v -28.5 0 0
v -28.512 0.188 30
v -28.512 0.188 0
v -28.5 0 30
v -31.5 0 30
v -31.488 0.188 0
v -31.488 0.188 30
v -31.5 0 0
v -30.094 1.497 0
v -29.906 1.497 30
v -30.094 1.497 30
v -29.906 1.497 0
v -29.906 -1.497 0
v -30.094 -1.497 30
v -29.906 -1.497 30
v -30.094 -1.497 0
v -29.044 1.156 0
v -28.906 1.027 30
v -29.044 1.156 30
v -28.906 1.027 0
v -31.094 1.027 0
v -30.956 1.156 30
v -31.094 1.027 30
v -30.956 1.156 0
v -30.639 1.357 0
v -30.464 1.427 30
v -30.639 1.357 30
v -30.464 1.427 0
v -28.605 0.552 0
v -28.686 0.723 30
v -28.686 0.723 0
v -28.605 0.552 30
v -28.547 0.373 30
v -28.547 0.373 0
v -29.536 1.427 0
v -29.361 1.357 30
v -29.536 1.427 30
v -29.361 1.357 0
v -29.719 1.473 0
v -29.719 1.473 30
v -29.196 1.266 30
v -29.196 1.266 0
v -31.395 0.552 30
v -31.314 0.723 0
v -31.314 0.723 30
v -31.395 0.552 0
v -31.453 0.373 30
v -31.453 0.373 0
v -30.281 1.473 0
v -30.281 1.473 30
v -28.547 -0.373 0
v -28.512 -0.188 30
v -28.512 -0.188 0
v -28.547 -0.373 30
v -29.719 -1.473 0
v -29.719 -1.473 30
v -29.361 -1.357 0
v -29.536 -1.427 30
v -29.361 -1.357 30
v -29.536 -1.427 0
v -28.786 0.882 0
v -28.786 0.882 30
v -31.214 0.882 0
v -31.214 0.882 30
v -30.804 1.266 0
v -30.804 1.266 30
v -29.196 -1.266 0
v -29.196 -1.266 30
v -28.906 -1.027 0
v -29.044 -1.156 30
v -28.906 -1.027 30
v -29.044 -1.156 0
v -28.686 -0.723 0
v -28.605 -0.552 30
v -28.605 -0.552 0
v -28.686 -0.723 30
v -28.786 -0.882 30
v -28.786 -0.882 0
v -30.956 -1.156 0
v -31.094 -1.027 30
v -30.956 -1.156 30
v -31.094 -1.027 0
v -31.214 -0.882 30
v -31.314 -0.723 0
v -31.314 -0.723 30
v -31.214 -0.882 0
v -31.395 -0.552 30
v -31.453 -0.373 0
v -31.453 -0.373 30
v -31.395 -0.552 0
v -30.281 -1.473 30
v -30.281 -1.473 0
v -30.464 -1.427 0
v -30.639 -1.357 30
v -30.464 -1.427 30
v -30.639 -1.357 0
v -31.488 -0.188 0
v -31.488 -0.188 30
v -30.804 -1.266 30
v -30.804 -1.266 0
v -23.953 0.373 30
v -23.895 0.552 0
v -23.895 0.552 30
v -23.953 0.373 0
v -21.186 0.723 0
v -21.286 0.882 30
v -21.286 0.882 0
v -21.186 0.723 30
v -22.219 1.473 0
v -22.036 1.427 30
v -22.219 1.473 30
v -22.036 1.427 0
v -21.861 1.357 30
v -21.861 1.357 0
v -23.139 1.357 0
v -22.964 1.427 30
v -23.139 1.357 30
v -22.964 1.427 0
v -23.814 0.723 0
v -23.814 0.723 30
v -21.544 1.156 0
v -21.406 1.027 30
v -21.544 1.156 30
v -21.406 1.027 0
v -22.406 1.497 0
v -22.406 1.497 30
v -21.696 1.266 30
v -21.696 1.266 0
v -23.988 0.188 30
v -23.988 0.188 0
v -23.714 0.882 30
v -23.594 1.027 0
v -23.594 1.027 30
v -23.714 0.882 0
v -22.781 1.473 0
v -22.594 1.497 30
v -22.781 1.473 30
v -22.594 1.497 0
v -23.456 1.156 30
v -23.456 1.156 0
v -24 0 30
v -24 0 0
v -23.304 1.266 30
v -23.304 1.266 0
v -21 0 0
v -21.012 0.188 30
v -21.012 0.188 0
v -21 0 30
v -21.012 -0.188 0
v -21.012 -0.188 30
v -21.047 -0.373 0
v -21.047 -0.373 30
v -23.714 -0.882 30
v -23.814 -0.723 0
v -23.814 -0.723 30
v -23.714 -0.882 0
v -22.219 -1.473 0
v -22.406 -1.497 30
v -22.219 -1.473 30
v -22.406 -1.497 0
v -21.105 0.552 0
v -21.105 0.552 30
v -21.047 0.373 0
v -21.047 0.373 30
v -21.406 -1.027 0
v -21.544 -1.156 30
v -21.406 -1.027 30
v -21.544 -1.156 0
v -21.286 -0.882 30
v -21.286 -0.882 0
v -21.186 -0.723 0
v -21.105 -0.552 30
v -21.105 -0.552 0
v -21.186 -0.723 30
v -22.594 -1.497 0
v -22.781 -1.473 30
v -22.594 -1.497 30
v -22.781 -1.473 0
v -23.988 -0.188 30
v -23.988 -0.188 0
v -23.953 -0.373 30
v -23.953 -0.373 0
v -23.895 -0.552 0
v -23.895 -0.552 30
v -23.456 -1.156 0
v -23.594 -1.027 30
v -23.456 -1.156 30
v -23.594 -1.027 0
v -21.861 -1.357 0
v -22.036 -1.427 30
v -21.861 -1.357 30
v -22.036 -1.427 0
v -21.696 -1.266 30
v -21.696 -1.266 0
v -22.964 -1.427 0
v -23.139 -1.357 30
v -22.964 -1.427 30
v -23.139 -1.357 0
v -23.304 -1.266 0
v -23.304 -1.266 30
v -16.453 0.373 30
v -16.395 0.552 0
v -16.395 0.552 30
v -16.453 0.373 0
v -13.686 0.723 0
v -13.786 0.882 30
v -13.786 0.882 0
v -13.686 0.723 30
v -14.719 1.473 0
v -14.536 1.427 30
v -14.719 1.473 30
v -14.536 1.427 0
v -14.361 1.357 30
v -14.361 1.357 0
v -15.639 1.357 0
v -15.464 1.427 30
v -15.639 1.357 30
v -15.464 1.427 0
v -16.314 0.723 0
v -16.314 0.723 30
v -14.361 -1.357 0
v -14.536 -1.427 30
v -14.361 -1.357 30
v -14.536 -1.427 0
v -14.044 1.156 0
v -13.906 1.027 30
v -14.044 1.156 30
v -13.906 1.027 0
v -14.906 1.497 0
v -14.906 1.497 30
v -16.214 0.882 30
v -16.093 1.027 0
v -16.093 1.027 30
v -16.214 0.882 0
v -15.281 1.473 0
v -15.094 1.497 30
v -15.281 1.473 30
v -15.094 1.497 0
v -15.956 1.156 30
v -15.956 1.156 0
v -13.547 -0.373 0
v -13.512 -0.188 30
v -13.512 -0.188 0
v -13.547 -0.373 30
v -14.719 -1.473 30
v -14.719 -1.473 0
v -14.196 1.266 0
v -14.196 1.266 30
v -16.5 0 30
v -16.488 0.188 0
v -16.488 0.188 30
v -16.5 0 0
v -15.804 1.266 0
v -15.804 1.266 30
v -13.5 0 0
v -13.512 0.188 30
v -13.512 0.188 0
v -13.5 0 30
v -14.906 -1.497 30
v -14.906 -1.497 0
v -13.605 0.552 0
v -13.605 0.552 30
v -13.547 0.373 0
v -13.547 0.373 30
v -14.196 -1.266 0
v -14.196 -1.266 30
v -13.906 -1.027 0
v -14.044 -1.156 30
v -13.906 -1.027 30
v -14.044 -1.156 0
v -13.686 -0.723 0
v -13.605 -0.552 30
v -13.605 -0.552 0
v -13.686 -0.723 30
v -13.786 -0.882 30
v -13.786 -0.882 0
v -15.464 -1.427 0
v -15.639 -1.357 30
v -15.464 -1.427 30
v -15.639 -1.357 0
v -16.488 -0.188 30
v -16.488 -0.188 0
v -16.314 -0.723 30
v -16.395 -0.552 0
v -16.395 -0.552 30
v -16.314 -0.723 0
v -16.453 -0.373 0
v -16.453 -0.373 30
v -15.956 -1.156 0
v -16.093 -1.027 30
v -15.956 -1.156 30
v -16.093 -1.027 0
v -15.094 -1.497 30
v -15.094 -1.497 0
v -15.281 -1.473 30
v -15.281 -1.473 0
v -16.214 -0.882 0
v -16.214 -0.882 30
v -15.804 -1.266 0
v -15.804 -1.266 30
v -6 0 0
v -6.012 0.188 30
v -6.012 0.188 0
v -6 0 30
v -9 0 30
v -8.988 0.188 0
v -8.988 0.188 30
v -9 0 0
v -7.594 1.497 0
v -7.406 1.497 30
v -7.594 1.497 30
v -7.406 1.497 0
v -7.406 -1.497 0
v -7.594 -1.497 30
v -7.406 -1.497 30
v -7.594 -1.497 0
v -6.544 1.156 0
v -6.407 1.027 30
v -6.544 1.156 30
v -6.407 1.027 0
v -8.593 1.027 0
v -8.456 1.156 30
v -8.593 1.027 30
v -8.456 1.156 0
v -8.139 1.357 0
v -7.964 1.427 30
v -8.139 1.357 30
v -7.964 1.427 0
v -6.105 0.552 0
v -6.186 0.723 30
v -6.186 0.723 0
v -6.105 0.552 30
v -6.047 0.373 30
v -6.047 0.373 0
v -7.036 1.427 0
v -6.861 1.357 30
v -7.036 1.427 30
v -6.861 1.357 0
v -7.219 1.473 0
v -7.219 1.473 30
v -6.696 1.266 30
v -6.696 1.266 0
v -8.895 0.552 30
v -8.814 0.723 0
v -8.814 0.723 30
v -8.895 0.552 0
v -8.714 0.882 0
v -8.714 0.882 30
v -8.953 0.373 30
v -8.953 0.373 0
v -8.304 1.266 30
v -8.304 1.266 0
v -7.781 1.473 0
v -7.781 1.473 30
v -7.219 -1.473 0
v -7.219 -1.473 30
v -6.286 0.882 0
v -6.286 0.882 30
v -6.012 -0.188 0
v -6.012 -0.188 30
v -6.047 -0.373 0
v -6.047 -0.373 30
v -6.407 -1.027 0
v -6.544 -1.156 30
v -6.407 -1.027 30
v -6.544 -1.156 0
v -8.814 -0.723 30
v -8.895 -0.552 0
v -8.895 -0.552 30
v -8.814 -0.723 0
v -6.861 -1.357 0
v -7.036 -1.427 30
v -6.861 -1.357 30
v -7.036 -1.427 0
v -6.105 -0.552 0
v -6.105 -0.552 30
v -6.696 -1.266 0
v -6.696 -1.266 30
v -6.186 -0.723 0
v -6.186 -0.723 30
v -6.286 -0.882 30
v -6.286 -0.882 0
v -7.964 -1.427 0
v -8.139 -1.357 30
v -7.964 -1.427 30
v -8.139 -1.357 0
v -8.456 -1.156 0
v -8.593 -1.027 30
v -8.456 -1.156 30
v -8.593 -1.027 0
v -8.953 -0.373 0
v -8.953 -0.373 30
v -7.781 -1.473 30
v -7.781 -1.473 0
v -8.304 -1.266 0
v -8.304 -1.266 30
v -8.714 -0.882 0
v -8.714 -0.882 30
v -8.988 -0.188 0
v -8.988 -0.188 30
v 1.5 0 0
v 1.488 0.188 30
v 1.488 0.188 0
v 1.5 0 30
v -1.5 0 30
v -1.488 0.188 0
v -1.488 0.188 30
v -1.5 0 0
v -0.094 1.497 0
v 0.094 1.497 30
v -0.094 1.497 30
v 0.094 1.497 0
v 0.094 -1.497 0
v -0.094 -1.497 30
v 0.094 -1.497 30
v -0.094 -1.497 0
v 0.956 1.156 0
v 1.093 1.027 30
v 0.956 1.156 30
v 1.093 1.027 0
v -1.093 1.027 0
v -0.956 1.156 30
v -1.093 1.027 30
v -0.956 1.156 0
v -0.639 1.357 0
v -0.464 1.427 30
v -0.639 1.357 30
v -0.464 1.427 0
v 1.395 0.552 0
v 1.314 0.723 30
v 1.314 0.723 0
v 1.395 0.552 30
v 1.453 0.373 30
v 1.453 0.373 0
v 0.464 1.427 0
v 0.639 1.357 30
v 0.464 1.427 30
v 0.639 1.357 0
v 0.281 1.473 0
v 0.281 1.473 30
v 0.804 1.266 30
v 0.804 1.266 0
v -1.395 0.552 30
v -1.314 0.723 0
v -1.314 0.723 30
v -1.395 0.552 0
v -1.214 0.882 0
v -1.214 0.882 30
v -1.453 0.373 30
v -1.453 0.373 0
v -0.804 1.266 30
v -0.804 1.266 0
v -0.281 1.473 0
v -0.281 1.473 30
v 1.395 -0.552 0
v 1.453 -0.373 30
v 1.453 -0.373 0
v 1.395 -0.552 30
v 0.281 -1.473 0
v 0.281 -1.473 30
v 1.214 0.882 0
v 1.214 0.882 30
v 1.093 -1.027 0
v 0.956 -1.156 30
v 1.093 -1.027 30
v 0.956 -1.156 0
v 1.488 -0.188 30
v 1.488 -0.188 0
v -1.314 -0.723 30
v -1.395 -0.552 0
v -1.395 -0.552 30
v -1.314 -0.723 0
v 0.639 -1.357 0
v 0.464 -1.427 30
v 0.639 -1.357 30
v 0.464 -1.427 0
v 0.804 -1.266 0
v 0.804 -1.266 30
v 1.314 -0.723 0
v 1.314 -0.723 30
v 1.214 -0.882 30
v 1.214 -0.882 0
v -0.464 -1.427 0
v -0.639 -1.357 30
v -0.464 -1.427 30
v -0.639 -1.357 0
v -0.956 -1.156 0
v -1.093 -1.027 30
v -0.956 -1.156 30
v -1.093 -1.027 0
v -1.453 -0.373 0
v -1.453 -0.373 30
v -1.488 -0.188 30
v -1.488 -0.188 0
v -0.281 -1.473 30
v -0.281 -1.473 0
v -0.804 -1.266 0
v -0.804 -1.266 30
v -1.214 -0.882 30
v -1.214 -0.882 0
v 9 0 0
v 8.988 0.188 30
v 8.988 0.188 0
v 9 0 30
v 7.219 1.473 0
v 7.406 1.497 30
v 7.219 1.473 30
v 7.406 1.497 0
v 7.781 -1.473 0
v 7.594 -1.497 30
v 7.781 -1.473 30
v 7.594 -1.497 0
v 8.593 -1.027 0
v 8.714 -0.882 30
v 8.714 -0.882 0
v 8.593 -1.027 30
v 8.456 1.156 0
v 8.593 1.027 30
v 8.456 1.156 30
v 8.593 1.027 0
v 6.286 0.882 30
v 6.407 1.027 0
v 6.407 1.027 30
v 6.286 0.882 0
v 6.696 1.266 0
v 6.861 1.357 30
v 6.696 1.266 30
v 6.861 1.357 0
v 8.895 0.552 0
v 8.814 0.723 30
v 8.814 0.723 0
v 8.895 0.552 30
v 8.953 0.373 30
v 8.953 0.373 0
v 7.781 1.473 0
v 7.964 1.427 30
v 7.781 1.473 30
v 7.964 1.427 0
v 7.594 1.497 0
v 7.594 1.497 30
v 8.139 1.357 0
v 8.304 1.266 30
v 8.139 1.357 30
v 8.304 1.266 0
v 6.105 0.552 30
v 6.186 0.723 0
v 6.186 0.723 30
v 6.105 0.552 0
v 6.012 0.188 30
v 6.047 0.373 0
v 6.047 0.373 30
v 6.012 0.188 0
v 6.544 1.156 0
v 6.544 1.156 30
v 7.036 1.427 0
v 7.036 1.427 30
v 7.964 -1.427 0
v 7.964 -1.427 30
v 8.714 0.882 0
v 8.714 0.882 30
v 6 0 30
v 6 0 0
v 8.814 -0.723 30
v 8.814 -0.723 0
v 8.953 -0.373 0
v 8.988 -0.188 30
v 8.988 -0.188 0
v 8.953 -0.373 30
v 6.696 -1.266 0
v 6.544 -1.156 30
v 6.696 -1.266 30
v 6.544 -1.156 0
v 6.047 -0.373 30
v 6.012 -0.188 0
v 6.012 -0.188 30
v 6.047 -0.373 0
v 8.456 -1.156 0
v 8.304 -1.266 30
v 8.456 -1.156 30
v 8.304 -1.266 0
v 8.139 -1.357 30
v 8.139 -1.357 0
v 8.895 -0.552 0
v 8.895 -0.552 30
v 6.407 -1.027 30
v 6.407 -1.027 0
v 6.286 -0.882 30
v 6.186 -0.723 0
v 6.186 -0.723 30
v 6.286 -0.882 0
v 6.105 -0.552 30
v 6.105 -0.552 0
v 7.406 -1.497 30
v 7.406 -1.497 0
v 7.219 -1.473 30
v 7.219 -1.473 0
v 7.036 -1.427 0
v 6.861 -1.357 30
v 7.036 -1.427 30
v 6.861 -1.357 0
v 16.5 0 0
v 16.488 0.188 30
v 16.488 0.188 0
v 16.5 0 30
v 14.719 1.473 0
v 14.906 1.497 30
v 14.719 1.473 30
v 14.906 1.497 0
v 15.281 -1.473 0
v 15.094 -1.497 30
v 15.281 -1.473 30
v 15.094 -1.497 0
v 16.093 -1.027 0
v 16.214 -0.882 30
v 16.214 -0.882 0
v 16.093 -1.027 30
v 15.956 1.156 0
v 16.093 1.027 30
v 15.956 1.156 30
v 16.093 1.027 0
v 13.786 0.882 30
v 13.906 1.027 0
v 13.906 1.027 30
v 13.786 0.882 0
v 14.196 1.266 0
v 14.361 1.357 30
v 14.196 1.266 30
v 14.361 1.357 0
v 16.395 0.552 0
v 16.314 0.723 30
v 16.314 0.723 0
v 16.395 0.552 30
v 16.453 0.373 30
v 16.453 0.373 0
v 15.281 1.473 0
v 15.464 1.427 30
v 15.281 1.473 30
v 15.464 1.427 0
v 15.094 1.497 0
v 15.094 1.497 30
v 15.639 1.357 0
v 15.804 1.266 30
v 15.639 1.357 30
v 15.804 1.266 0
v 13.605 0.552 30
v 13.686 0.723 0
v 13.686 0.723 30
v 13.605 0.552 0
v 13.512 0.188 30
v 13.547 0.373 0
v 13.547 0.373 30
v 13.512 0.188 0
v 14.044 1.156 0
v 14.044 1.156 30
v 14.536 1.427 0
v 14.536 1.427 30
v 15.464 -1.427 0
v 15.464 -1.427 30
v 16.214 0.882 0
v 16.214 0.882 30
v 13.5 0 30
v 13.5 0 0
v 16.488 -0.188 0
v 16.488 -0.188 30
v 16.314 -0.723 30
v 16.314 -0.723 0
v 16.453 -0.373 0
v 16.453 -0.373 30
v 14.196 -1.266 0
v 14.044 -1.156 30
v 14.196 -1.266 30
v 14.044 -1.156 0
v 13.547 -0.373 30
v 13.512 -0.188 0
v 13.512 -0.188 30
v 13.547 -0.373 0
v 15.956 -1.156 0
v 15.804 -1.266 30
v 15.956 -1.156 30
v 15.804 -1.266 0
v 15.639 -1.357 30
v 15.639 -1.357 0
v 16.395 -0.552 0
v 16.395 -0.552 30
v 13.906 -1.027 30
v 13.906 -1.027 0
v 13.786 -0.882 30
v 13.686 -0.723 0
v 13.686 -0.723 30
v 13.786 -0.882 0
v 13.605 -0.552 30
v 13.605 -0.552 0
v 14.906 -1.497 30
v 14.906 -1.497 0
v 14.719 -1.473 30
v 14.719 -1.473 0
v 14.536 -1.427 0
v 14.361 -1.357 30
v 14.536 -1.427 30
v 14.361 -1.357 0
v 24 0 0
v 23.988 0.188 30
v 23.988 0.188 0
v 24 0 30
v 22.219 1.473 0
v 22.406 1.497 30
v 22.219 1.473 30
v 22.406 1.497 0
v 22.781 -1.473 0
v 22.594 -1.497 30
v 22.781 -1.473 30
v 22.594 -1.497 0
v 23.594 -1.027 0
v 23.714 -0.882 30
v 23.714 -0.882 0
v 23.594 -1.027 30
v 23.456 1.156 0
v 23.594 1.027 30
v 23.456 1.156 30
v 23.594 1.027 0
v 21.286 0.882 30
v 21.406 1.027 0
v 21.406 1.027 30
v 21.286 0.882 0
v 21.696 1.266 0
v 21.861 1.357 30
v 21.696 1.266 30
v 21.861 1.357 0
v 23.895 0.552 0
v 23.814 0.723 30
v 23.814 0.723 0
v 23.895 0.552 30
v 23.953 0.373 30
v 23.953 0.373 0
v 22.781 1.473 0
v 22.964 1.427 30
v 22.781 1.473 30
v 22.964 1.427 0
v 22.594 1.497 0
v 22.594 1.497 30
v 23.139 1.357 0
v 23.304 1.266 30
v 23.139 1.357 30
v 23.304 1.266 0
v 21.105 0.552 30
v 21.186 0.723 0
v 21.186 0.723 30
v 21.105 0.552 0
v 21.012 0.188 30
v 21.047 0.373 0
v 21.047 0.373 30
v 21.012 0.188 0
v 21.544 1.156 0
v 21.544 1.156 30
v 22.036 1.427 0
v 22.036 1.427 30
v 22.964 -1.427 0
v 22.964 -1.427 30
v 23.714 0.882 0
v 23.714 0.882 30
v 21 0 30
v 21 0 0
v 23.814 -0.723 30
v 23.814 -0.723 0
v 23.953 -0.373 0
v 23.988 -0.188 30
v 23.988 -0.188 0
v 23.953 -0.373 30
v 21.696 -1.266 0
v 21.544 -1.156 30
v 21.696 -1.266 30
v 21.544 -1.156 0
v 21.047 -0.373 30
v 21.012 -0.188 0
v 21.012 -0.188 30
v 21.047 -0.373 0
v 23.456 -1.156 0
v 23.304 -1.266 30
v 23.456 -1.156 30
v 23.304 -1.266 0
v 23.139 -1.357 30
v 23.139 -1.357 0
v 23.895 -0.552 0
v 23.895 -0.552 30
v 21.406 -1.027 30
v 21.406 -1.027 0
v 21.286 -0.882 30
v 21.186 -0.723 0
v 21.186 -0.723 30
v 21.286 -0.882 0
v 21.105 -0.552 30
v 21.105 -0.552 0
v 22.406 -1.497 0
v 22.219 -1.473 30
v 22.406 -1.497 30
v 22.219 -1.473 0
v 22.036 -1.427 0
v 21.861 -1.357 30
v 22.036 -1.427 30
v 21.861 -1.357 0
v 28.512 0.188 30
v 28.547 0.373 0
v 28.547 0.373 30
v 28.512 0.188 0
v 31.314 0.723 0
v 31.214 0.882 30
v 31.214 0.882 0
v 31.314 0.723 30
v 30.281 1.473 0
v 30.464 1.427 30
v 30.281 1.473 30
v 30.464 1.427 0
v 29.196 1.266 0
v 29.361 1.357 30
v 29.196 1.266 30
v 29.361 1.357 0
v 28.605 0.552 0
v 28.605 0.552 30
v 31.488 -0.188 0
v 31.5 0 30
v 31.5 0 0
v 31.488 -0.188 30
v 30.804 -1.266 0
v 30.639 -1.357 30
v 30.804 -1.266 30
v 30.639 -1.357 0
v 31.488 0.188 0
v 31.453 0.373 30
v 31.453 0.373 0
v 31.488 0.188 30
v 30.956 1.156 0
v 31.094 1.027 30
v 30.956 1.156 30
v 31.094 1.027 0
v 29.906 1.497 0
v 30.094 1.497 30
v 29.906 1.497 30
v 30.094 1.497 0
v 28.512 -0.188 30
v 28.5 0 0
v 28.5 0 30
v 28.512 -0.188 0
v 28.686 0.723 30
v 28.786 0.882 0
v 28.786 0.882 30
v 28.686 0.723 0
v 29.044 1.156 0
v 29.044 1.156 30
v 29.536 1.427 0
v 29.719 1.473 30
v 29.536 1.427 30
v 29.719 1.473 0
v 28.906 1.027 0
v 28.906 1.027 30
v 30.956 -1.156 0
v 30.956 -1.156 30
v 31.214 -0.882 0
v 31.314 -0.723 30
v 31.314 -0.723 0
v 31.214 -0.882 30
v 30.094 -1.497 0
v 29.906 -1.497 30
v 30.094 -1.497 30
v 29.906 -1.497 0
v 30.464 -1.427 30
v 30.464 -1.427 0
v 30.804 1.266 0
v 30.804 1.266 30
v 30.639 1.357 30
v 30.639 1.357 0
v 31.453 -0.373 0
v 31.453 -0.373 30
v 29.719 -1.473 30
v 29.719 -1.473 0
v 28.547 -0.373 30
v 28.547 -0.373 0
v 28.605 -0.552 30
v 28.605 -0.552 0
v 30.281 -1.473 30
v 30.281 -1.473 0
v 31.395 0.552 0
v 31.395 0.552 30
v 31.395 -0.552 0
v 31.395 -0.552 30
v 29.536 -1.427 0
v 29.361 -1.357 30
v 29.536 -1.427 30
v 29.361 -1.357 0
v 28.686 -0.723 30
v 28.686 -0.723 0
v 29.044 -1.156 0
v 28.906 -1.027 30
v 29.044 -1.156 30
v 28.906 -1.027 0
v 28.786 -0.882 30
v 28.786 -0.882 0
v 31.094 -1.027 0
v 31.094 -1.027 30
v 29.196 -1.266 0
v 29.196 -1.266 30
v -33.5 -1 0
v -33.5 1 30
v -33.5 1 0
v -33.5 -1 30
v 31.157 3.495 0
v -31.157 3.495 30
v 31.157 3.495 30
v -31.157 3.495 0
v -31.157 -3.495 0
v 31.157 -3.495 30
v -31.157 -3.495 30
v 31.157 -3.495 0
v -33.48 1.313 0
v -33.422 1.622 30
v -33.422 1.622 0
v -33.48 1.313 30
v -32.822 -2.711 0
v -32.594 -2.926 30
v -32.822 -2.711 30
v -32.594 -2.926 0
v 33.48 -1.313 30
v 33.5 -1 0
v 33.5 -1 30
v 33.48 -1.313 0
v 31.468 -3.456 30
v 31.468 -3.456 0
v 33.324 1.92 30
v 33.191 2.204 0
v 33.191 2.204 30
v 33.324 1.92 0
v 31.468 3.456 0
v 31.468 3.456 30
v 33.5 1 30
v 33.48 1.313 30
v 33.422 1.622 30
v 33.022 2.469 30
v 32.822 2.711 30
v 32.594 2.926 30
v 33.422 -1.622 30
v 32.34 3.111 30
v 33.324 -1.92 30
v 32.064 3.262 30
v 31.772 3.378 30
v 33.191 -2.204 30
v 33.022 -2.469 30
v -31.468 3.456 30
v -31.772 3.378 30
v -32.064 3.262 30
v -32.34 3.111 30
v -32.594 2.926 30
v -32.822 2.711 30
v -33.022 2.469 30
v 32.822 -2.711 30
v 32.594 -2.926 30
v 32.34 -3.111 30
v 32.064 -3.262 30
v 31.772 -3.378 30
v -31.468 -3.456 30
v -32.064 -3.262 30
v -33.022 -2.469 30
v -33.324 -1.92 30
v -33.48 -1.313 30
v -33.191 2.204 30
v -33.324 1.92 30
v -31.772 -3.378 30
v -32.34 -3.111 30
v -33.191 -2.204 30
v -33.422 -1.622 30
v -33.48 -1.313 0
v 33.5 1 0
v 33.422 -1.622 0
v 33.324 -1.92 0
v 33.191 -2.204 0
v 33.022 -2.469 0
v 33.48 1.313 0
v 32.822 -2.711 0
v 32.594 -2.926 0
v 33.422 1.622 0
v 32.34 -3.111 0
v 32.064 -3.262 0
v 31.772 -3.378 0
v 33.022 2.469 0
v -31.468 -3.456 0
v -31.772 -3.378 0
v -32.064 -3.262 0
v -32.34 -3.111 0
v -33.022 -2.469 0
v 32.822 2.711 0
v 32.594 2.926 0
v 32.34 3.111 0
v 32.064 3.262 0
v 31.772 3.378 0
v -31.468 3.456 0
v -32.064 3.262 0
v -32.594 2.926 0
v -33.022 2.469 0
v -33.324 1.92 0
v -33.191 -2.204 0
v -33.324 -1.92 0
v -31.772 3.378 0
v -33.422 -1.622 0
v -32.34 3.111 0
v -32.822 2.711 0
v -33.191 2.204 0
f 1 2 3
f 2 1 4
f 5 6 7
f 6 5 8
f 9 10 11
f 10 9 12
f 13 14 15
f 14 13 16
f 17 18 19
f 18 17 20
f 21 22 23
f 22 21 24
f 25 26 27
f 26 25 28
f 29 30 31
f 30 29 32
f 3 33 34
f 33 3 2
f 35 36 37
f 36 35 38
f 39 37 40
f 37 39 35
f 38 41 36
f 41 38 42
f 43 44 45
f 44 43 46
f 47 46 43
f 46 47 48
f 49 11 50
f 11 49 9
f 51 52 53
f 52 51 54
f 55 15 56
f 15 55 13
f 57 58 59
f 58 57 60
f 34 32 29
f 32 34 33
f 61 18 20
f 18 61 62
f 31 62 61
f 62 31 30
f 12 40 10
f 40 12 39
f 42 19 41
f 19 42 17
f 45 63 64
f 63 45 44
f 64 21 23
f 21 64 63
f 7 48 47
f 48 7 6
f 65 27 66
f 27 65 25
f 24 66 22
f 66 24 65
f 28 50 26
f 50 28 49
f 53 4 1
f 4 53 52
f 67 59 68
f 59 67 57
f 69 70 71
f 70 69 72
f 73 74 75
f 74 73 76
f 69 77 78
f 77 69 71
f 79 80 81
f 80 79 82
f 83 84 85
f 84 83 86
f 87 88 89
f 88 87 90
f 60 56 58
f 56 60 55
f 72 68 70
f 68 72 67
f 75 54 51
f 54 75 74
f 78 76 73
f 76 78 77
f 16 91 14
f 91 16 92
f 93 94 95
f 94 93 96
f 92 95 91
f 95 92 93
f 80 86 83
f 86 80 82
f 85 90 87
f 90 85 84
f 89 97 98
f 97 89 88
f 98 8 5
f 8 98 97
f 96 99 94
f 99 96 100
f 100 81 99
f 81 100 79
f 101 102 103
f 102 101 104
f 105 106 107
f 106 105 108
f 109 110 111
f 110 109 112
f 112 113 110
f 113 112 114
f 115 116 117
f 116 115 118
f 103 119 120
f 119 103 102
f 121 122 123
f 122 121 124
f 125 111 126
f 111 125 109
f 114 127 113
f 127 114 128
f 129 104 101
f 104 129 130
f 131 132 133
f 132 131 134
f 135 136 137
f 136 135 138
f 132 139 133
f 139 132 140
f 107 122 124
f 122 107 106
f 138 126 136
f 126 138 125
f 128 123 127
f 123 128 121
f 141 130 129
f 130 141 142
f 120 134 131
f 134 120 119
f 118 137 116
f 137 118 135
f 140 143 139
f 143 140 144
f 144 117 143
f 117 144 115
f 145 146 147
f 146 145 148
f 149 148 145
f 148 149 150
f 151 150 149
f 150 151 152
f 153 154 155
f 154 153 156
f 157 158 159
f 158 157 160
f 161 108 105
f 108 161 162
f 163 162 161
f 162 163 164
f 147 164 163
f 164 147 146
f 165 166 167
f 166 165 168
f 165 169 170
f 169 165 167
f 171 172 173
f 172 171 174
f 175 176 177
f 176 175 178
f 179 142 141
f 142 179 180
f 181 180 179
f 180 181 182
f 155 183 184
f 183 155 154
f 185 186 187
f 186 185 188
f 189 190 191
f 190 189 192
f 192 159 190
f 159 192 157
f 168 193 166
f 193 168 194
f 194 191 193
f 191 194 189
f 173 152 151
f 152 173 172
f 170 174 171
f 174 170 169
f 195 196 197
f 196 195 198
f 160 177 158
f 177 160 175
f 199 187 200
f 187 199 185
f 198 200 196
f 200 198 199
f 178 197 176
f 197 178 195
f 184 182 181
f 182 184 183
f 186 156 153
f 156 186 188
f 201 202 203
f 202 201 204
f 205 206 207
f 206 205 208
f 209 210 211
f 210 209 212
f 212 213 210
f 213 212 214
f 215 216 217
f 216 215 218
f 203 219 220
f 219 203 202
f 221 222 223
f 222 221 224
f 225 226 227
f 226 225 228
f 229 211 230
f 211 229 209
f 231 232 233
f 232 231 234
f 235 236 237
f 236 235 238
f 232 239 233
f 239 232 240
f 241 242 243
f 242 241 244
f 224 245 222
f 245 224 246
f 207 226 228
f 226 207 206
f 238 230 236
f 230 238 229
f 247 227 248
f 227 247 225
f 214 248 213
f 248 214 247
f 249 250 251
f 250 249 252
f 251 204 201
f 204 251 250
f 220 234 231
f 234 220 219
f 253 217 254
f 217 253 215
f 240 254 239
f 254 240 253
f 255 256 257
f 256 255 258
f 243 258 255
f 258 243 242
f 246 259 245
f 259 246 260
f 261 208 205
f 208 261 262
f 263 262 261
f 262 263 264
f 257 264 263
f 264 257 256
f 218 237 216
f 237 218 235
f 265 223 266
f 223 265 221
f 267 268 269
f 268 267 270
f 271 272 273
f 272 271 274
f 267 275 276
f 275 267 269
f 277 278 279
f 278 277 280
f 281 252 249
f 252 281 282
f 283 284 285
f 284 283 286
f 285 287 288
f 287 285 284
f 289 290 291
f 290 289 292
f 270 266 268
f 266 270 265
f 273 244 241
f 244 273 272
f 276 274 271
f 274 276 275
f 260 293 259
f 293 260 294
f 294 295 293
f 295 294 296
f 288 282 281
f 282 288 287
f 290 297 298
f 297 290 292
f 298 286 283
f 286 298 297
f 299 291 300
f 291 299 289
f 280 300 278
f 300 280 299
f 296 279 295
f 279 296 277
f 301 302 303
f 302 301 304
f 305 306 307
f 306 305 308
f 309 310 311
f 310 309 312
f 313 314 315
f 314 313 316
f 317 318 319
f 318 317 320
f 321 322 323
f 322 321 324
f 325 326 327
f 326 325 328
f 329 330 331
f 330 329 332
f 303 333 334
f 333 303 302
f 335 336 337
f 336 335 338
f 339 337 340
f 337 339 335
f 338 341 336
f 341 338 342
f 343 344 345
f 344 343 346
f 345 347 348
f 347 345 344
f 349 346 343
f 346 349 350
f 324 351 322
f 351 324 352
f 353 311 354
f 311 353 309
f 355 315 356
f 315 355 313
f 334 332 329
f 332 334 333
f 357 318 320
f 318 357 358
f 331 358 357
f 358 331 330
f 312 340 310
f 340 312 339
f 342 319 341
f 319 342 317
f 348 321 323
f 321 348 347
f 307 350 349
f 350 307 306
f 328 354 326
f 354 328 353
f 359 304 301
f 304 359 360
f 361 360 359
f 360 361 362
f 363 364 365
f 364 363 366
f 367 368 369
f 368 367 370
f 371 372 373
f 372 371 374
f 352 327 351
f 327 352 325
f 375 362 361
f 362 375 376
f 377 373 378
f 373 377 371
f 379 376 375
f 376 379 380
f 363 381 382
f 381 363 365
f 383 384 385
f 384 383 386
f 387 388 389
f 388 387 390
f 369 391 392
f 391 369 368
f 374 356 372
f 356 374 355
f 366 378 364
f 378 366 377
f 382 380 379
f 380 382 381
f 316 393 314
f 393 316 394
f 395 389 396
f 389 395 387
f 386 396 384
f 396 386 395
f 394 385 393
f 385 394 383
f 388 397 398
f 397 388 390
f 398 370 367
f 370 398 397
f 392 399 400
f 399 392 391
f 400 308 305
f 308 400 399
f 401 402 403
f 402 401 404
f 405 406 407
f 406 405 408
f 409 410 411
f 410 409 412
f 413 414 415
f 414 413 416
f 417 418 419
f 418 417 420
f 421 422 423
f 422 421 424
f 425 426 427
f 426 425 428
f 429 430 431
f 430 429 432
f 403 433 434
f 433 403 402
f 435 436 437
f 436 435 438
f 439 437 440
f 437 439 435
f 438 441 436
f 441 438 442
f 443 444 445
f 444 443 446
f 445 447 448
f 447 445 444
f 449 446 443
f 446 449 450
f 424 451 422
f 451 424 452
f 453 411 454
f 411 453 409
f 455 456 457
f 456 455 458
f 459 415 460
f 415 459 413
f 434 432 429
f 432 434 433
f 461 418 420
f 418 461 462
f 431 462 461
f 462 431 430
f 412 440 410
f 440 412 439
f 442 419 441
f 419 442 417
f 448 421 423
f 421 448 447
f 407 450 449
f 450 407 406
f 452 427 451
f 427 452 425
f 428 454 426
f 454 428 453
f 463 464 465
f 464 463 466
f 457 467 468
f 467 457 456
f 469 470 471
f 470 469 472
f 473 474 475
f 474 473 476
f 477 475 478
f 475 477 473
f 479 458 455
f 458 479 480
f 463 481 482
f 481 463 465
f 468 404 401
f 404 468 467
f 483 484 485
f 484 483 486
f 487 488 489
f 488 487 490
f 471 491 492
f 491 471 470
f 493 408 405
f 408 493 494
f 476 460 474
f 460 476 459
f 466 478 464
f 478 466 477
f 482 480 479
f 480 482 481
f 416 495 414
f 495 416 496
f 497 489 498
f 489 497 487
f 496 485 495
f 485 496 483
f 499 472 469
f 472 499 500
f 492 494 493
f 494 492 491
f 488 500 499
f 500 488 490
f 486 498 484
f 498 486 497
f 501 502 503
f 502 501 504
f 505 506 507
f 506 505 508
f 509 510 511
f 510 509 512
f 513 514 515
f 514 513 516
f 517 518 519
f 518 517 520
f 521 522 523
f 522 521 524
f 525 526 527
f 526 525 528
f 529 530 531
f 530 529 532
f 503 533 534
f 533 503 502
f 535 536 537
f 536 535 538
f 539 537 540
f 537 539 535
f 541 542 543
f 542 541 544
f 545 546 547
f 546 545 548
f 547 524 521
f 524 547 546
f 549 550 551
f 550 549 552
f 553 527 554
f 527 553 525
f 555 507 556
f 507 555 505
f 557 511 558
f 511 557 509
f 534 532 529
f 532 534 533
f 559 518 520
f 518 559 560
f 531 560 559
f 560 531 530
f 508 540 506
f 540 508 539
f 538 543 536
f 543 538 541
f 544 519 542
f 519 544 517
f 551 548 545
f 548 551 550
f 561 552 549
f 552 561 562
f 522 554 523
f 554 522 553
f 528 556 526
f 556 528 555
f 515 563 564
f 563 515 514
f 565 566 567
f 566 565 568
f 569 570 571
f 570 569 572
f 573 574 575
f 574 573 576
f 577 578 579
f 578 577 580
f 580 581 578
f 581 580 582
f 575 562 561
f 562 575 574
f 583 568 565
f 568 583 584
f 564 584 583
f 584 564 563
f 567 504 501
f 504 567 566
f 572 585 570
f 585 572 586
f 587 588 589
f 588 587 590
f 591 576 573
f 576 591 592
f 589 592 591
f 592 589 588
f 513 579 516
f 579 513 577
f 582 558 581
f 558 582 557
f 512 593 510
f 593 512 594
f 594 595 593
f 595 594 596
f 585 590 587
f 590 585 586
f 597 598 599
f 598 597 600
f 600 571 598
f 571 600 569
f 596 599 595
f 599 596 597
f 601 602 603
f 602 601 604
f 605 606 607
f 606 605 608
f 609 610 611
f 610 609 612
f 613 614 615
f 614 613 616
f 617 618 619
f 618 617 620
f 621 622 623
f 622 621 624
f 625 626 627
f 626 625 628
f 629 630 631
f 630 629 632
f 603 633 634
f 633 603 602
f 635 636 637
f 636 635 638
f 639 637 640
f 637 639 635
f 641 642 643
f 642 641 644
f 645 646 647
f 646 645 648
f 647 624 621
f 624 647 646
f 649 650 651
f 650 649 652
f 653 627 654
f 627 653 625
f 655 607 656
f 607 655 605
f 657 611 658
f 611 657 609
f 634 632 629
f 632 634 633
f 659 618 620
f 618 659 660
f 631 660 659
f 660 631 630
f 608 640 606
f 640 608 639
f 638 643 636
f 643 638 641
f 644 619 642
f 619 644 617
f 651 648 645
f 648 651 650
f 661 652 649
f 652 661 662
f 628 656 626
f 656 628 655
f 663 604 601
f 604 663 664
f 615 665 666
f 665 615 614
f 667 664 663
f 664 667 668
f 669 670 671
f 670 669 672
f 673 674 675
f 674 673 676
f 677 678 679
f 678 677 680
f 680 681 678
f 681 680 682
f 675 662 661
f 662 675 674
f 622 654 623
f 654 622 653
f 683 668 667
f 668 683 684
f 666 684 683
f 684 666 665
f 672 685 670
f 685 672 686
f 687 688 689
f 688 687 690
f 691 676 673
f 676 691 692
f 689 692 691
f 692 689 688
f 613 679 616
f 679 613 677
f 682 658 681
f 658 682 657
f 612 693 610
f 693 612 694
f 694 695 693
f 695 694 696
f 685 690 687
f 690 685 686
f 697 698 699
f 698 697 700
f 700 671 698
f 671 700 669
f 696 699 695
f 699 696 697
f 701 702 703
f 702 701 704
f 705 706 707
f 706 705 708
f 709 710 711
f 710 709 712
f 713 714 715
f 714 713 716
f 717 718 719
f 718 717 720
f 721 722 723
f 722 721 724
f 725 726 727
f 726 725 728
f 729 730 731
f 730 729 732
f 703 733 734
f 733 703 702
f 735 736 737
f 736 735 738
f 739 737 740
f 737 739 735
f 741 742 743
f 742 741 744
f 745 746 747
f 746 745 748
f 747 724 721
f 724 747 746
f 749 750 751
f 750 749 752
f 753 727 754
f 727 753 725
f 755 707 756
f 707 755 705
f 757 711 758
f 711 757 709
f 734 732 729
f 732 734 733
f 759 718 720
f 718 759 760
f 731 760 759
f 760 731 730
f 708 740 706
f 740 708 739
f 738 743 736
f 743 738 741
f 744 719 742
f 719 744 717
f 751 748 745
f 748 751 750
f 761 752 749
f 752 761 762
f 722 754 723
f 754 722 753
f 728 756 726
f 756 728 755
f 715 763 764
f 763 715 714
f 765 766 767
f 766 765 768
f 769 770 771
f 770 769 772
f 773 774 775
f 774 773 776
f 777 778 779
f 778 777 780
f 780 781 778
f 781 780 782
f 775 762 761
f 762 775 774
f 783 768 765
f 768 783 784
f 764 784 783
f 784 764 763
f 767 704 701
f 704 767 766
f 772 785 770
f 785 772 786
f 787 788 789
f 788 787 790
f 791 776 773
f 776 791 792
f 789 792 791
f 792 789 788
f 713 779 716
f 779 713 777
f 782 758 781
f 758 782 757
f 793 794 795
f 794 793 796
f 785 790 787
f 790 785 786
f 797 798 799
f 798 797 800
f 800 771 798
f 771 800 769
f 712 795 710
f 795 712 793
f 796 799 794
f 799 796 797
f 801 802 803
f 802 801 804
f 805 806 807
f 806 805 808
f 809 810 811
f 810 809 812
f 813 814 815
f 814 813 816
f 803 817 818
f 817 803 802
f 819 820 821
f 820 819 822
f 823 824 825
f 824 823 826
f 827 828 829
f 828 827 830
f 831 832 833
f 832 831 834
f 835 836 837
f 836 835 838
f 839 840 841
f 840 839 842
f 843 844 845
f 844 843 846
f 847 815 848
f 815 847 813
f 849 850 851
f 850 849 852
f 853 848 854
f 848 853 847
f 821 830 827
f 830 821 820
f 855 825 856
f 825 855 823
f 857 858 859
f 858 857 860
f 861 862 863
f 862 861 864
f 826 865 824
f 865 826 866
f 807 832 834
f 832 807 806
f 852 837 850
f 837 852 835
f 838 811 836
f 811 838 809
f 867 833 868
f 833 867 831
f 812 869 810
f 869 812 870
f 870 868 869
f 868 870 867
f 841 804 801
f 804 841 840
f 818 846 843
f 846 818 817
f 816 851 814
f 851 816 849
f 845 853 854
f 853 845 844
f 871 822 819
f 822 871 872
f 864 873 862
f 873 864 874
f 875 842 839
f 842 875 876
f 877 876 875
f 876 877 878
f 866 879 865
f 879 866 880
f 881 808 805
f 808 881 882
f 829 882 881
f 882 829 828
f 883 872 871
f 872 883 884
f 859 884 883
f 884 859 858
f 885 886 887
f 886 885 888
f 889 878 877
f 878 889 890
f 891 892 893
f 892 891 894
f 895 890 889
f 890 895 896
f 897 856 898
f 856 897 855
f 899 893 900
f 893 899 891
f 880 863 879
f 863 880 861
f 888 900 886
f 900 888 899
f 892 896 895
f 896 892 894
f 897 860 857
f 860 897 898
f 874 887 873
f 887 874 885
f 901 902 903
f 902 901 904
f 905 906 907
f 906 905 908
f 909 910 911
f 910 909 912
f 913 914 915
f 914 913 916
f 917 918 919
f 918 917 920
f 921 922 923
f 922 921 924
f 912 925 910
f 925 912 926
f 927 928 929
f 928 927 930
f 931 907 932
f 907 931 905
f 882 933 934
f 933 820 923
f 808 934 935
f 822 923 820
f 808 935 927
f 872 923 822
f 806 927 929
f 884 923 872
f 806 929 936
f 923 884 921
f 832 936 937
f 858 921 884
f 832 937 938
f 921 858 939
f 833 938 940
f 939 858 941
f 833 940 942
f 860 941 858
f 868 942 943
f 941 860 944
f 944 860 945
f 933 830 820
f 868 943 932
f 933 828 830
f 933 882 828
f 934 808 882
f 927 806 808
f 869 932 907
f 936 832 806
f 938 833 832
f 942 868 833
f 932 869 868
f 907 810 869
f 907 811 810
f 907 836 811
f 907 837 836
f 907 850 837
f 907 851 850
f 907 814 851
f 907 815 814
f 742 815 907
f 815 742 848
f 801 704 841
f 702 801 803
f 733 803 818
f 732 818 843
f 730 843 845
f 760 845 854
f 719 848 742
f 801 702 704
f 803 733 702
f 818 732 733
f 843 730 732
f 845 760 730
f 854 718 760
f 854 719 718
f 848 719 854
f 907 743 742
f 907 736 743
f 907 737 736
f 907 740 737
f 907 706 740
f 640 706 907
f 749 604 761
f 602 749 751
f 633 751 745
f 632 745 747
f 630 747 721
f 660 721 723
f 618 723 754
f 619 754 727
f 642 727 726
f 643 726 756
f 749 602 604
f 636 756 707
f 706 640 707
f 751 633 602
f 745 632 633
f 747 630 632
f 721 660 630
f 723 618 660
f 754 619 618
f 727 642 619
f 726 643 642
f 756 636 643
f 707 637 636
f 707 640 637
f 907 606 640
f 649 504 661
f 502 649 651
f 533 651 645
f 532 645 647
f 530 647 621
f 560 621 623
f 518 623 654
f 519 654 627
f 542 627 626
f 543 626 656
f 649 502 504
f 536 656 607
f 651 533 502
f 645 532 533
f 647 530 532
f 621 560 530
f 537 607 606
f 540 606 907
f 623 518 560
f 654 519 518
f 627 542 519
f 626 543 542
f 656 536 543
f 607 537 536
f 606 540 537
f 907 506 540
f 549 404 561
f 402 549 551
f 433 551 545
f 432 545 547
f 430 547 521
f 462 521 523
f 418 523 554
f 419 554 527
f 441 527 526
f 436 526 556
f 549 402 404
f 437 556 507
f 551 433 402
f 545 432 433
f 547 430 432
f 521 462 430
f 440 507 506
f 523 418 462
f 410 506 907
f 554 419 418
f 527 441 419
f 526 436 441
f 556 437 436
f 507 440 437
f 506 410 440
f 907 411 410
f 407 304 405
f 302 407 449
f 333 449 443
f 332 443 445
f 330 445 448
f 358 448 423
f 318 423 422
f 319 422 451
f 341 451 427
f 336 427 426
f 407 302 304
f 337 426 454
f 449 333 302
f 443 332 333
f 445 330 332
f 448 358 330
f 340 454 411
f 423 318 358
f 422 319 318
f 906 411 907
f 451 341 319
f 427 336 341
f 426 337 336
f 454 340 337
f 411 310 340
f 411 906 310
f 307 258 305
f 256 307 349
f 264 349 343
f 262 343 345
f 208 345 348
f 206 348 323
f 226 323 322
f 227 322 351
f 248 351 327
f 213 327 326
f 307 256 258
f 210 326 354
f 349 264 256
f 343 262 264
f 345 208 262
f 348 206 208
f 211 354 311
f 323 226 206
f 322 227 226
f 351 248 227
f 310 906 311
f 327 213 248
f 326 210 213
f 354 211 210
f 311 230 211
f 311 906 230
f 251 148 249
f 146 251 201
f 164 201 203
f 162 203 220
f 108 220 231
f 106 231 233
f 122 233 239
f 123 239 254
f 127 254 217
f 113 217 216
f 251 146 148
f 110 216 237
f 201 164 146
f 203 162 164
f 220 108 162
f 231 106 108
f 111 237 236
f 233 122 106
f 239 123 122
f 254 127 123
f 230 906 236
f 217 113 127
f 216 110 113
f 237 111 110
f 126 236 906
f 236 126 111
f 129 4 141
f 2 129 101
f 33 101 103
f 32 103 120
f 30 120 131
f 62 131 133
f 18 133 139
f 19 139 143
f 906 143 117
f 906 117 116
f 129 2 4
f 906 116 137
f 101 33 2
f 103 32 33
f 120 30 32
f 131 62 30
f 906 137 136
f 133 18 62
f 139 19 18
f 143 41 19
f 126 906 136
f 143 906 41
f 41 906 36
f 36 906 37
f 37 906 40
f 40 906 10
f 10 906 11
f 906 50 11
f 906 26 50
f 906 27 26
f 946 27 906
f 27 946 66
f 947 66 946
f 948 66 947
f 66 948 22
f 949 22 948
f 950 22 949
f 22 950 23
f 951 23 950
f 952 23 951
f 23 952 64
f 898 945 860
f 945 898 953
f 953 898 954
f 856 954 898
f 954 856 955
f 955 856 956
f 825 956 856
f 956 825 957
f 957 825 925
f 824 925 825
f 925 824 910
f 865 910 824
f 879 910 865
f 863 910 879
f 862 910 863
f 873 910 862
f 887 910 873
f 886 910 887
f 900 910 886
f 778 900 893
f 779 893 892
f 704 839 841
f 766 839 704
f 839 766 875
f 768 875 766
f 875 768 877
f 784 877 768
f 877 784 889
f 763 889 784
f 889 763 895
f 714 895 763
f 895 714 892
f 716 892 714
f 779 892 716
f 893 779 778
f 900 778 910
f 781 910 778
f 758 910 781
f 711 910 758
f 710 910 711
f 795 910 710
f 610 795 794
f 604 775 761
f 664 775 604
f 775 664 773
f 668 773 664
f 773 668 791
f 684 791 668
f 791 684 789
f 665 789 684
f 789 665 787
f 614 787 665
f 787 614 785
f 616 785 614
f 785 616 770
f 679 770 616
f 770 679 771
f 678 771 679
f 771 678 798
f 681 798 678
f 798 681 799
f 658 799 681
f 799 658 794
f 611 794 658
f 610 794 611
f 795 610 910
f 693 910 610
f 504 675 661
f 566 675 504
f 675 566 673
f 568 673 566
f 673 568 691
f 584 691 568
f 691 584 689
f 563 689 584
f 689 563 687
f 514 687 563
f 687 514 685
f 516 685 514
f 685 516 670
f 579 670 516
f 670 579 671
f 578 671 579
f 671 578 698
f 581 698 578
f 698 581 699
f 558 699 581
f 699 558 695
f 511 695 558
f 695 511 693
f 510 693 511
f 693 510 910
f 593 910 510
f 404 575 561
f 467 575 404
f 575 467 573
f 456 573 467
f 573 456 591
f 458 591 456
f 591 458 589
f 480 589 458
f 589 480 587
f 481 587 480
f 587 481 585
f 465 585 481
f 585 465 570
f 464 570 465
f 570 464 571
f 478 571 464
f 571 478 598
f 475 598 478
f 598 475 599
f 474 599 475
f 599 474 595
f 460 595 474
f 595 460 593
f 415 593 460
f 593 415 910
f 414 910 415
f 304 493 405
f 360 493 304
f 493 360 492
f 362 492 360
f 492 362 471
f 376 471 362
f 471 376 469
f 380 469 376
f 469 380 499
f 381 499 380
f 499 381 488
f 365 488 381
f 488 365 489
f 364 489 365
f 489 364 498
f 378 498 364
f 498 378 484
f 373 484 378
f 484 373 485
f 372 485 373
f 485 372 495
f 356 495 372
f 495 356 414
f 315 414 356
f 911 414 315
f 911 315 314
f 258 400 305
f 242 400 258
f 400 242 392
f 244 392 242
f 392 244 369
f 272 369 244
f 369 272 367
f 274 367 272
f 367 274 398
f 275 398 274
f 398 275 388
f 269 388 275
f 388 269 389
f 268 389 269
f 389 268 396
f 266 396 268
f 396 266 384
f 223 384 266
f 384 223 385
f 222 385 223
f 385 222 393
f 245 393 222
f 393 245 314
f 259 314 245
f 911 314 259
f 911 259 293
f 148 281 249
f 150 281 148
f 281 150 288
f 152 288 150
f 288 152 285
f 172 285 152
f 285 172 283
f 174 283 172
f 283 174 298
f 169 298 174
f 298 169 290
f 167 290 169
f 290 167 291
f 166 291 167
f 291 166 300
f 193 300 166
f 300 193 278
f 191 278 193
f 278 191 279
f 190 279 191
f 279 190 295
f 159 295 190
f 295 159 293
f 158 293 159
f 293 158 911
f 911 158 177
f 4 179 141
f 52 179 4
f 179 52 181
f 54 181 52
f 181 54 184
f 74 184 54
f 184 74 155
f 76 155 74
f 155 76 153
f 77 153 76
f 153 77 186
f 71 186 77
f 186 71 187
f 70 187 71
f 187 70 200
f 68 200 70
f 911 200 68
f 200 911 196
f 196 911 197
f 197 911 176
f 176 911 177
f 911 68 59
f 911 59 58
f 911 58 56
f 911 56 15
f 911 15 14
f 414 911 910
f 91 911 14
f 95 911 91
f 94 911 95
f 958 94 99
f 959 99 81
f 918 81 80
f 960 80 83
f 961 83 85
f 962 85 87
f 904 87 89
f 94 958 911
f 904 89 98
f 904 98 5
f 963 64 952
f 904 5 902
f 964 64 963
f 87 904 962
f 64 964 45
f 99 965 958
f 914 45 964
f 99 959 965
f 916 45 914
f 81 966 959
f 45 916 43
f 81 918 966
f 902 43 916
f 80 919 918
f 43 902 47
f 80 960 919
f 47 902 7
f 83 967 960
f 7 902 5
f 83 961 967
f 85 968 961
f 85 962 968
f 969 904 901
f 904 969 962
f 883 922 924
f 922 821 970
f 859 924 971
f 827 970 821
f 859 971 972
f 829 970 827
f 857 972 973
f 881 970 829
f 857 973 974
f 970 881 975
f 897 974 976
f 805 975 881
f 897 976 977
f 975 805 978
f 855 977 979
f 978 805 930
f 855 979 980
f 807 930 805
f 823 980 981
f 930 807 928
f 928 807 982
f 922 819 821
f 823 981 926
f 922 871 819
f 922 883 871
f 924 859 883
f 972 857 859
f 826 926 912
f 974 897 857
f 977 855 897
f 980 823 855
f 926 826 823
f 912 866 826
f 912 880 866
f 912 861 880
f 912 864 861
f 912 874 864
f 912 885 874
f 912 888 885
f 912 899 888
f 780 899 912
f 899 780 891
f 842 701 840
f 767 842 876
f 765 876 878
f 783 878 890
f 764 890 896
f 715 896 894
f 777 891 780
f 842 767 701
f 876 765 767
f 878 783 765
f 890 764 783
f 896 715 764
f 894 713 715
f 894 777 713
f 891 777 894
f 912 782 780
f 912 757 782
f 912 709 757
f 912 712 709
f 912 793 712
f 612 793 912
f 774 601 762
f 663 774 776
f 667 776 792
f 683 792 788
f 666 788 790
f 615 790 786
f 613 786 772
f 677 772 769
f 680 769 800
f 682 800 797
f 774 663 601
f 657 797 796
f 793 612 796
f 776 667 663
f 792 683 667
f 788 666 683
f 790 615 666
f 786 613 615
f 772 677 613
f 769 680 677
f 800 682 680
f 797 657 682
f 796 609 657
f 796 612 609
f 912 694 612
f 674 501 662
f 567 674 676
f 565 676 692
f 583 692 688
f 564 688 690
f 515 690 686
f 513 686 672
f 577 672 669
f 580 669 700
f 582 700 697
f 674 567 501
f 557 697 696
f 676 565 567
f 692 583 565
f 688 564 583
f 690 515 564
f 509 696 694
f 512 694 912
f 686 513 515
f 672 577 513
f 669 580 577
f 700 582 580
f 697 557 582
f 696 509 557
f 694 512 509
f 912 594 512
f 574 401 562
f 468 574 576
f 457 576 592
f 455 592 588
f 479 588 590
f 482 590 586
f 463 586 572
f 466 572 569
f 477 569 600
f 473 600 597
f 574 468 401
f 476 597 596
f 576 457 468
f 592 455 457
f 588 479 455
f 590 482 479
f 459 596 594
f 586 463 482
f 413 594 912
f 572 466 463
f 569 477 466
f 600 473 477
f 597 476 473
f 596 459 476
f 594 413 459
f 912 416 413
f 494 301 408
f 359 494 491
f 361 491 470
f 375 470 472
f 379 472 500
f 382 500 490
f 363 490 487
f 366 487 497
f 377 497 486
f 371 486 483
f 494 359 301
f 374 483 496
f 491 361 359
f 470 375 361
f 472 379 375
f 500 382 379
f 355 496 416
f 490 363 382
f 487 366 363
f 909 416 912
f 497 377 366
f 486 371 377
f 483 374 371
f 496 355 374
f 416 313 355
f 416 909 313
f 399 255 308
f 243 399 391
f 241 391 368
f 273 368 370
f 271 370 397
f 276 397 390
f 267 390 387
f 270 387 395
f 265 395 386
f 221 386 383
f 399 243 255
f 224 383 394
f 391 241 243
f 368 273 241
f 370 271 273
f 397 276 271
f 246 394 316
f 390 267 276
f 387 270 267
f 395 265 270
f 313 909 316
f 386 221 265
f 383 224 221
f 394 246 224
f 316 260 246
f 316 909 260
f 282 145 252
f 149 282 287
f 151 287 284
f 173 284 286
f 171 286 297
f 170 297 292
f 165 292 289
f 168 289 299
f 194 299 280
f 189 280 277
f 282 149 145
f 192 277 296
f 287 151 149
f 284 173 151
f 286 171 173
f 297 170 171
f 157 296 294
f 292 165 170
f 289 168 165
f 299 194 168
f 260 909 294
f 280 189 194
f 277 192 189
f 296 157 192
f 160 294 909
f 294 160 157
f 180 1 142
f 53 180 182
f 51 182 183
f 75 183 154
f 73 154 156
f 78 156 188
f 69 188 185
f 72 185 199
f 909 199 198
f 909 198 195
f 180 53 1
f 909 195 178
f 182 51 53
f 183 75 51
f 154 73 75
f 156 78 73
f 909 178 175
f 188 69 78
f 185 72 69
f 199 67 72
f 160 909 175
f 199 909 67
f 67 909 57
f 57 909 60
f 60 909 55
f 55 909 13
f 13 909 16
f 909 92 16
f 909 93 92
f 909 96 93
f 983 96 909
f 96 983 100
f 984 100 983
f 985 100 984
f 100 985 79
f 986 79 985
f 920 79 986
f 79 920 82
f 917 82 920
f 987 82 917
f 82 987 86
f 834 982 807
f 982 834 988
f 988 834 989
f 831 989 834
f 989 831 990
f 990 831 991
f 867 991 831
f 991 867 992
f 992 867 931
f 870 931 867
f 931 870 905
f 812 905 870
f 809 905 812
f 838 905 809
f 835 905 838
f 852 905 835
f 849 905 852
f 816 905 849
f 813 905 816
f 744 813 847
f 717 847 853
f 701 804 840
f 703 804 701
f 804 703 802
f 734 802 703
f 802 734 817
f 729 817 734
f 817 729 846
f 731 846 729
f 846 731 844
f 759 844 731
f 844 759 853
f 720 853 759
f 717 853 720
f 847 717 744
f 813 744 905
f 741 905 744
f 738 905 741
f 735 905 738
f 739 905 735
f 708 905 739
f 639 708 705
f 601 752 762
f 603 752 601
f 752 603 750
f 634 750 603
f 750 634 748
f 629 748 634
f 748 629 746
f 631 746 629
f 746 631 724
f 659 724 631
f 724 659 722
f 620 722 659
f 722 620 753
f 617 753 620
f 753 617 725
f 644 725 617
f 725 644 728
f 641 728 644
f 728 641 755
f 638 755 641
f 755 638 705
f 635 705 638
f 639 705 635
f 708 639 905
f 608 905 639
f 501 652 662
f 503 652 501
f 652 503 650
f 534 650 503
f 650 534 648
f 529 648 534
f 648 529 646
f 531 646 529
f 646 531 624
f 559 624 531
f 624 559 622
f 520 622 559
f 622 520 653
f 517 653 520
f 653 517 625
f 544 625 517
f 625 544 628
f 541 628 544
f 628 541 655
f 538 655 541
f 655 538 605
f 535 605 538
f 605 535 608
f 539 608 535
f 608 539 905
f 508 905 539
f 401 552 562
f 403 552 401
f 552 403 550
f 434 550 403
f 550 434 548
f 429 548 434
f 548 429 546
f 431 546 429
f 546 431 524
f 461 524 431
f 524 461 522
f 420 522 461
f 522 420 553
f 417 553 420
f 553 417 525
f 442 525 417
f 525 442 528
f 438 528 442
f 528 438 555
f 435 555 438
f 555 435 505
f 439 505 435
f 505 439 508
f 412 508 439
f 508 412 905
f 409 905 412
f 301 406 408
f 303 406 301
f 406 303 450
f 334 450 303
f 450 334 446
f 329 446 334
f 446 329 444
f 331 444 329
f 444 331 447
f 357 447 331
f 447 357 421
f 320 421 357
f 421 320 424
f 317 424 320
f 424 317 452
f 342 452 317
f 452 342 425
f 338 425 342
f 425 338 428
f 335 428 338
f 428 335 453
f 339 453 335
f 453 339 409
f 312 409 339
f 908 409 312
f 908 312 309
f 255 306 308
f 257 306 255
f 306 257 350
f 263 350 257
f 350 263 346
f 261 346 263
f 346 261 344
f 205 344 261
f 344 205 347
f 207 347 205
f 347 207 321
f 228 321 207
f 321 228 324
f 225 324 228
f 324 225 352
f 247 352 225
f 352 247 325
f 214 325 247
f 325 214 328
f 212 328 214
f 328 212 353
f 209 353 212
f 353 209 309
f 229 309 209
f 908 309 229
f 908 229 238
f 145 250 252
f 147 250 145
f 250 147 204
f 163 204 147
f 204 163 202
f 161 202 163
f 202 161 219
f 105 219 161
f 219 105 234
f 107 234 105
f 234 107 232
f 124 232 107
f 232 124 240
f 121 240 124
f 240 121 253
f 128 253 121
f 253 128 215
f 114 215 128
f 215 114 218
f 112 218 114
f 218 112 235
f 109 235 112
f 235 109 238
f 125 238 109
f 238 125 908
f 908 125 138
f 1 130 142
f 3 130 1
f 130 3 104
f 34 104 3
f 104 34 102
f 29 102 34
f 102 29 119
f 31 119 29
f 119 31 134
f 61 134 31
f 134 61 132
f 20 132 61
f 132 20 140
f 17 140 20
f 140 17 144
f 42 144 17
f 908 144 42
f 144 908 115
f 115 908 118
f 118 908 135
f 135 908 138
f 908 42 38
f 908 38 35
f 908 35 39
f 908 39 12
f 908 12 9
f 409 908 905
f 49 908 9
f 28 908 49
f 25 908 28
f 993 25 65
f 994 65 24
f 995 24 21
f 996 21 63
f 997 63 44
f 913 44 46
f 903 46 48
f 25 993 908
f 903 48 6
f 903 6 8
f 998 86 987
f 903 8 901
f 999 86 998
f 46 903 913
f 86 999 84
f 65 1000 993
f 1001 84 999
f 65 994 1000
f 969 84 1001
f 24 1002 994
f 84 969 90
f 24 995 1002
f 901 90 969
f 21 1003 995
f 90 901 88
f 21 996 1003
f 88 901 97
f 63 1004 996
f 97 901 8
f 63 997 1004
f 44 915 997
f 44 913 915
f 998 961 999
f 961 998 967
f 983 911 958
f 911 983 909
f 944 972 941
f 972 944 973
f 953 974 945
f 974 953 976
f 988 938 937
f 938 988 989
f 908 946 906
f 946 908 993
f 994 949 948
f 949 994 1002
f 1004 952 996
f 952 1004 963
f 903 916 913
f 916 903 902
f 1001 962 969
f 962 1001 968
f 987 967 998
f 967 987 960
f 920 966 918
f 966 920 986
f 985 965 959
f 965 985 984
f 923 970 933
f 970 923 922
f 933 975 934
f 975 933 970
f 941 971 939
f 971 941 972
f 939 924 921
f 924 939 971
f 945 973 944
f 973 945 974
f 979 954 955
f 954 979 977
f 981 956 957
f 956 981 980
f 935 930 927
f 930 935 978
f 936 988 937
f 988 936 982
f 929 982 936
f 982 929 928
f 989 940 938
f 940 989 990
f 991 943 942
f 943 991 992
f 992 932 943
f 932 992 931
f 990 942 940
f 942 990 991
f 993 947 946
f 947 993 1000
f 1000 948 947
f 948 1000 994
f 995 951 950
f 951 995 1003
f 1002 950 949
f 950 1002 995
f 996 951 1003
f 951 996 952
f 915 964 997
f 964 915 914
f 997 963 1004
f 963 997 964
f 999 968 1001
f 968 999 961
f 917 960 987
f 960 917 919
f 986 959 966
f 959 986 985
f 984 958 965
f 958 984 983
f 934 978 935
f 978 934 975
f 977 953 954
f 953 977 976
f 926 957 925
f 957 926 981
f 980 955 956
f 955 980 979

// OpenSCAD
$fn = 50;


difference() {
	union() {
		translate(v = [0, 0, 0]) {
			rotate(a = [0, 0, 0]) {
				hull() {
					translate(v = [-31.0000000000, 1.0000000000, 0]) {
						rotate(a = [0, 0, 0]) {
							translate(v = [0, 0, 0]) {
								rotate(a = [0, 0, 0]) {
									cylinder(h = 30, r = 2.5000000000);
								}
							}
						}
					}
					translate(v = [31.0000000000, 1.0000000000, 0]) {
						rotate(a = [0, 0, 0]) {
							translate(v = [0, 0, 0]) {
								rotate(a = [0, 0, 0]) {
									cylinder(h = 30, r = 2.5000000000);
								}
							}
						}
					}
					translate(v = [-31.0000000000, -1.0000000000, 0]) {
						rotate(a = [0, 0, 0]) {
							translate(v = [0, 0, 0]) {
								rotate(a = [0, 0, 0]) {
									cylinder(h = 30, r = 2.5000000000);
								}
							}
						}
					}
					translate(v = [31.0000000000, -1.0000000000, 0]) {
						rotate(a = [0, 0, 0]) {
							translate(v = [0, 0, 0]) {
								rotate(a = [0, 0, 0]) {
									cylinder(h = 30, r = 2.5000000000);
								}
							}
						}
					}
				}
			}
		}
	}
	union() {
		translate(v = [-30.0000000000, 0.0000000000, 0]) {
			rotate(a = [0, 0, 0]) {
				translate(v = [0, 0, -50]) {
					rotate(a = [0, 0, 0]) {
						cylinder(h = 100, r = 1.5000000000);
					}
				}
			}
		}
		translate(v = [-22.5000000000, 0.0000000000, 0]) {
			rotate(a = [0, 0, 0]) {
				translate(v = [0, 0, -50]) {
					rotate(a = [0, 0, 0]) {
						cylinder(h = 100, r = 1.5000000000);
					}
				}
			}
		}
		translate(v = [-15.0000000000, 0.0000000000, 0]) {
			rotate(a = [0, 0, 0]) {
				translate(v = [0, 0, -50]) {
					rotate(a = [0, 0, 0]) {
						cylinder(h = 100, r = 1.5000000000);
					}
				}
			}
		}
		translate(v = [-7.5000000000, 0.0000000000, 0]) {
			rotate(a = [0, 0, 0]) {
				translate(v = [0, 0, -50]) {
					rotate(a = [0, 0, 0]) {
						cylinder(h = 100, r = 1.5000000000);
					}
				}
			}
		}
		translate(v = [0.0000000000, 0.0000000000, 0]) {
			rotate(a = [0, 0, 0]) {
				translate(v = [0, 0, -50]) {
					rotate(a = [0, 0, 0]) {
						cylinder(h = 100, r = 1.5000000000);
					}
				}
			}
		}
		translate(v = [7.5000000000, 0.0000000000, 0]) {
			rotate(a = [0, 0, 0]) {
				translate(v = [0, 0, -50]) {
					rotate(a = [0, 0, 0]) {
						cylinder(h = 100, r = 1.5000000000);
					}
				}
			}
		}
		translate(v = [15.0000000000, 0.0000000000, 0]) {
			rotate(a = [0, 0, 0]) {
				translate(v = [0, 0, -50]) {
					rotate(a = [0, 0, 0]) {
						cylinder(h = 100, r = 1.5000000000);
					}
				}
			}
		}
		translate(v = [22.5000000000, 0.0000000000, 0]) {
			rotate(a = [0, 0, 0]) {
				translate(v = [0, 0, -50]) {
					rotate(a = [0, 0, 0]) {
						cylinder(h = 100, r = 1.5000000000);
					}
				}
			}
		}
		translate(v = [30.0000000000, 0.0000000000, 0]) {
			rotate(a = [0, 0, 0]) {
				translate(v = [0, 0, -50]) {
					rotate(a = [0, 0, 0]) {
						cylinder(h = 100, r = 1.5000000000);
					}
				}
			}
		}
	}
}
